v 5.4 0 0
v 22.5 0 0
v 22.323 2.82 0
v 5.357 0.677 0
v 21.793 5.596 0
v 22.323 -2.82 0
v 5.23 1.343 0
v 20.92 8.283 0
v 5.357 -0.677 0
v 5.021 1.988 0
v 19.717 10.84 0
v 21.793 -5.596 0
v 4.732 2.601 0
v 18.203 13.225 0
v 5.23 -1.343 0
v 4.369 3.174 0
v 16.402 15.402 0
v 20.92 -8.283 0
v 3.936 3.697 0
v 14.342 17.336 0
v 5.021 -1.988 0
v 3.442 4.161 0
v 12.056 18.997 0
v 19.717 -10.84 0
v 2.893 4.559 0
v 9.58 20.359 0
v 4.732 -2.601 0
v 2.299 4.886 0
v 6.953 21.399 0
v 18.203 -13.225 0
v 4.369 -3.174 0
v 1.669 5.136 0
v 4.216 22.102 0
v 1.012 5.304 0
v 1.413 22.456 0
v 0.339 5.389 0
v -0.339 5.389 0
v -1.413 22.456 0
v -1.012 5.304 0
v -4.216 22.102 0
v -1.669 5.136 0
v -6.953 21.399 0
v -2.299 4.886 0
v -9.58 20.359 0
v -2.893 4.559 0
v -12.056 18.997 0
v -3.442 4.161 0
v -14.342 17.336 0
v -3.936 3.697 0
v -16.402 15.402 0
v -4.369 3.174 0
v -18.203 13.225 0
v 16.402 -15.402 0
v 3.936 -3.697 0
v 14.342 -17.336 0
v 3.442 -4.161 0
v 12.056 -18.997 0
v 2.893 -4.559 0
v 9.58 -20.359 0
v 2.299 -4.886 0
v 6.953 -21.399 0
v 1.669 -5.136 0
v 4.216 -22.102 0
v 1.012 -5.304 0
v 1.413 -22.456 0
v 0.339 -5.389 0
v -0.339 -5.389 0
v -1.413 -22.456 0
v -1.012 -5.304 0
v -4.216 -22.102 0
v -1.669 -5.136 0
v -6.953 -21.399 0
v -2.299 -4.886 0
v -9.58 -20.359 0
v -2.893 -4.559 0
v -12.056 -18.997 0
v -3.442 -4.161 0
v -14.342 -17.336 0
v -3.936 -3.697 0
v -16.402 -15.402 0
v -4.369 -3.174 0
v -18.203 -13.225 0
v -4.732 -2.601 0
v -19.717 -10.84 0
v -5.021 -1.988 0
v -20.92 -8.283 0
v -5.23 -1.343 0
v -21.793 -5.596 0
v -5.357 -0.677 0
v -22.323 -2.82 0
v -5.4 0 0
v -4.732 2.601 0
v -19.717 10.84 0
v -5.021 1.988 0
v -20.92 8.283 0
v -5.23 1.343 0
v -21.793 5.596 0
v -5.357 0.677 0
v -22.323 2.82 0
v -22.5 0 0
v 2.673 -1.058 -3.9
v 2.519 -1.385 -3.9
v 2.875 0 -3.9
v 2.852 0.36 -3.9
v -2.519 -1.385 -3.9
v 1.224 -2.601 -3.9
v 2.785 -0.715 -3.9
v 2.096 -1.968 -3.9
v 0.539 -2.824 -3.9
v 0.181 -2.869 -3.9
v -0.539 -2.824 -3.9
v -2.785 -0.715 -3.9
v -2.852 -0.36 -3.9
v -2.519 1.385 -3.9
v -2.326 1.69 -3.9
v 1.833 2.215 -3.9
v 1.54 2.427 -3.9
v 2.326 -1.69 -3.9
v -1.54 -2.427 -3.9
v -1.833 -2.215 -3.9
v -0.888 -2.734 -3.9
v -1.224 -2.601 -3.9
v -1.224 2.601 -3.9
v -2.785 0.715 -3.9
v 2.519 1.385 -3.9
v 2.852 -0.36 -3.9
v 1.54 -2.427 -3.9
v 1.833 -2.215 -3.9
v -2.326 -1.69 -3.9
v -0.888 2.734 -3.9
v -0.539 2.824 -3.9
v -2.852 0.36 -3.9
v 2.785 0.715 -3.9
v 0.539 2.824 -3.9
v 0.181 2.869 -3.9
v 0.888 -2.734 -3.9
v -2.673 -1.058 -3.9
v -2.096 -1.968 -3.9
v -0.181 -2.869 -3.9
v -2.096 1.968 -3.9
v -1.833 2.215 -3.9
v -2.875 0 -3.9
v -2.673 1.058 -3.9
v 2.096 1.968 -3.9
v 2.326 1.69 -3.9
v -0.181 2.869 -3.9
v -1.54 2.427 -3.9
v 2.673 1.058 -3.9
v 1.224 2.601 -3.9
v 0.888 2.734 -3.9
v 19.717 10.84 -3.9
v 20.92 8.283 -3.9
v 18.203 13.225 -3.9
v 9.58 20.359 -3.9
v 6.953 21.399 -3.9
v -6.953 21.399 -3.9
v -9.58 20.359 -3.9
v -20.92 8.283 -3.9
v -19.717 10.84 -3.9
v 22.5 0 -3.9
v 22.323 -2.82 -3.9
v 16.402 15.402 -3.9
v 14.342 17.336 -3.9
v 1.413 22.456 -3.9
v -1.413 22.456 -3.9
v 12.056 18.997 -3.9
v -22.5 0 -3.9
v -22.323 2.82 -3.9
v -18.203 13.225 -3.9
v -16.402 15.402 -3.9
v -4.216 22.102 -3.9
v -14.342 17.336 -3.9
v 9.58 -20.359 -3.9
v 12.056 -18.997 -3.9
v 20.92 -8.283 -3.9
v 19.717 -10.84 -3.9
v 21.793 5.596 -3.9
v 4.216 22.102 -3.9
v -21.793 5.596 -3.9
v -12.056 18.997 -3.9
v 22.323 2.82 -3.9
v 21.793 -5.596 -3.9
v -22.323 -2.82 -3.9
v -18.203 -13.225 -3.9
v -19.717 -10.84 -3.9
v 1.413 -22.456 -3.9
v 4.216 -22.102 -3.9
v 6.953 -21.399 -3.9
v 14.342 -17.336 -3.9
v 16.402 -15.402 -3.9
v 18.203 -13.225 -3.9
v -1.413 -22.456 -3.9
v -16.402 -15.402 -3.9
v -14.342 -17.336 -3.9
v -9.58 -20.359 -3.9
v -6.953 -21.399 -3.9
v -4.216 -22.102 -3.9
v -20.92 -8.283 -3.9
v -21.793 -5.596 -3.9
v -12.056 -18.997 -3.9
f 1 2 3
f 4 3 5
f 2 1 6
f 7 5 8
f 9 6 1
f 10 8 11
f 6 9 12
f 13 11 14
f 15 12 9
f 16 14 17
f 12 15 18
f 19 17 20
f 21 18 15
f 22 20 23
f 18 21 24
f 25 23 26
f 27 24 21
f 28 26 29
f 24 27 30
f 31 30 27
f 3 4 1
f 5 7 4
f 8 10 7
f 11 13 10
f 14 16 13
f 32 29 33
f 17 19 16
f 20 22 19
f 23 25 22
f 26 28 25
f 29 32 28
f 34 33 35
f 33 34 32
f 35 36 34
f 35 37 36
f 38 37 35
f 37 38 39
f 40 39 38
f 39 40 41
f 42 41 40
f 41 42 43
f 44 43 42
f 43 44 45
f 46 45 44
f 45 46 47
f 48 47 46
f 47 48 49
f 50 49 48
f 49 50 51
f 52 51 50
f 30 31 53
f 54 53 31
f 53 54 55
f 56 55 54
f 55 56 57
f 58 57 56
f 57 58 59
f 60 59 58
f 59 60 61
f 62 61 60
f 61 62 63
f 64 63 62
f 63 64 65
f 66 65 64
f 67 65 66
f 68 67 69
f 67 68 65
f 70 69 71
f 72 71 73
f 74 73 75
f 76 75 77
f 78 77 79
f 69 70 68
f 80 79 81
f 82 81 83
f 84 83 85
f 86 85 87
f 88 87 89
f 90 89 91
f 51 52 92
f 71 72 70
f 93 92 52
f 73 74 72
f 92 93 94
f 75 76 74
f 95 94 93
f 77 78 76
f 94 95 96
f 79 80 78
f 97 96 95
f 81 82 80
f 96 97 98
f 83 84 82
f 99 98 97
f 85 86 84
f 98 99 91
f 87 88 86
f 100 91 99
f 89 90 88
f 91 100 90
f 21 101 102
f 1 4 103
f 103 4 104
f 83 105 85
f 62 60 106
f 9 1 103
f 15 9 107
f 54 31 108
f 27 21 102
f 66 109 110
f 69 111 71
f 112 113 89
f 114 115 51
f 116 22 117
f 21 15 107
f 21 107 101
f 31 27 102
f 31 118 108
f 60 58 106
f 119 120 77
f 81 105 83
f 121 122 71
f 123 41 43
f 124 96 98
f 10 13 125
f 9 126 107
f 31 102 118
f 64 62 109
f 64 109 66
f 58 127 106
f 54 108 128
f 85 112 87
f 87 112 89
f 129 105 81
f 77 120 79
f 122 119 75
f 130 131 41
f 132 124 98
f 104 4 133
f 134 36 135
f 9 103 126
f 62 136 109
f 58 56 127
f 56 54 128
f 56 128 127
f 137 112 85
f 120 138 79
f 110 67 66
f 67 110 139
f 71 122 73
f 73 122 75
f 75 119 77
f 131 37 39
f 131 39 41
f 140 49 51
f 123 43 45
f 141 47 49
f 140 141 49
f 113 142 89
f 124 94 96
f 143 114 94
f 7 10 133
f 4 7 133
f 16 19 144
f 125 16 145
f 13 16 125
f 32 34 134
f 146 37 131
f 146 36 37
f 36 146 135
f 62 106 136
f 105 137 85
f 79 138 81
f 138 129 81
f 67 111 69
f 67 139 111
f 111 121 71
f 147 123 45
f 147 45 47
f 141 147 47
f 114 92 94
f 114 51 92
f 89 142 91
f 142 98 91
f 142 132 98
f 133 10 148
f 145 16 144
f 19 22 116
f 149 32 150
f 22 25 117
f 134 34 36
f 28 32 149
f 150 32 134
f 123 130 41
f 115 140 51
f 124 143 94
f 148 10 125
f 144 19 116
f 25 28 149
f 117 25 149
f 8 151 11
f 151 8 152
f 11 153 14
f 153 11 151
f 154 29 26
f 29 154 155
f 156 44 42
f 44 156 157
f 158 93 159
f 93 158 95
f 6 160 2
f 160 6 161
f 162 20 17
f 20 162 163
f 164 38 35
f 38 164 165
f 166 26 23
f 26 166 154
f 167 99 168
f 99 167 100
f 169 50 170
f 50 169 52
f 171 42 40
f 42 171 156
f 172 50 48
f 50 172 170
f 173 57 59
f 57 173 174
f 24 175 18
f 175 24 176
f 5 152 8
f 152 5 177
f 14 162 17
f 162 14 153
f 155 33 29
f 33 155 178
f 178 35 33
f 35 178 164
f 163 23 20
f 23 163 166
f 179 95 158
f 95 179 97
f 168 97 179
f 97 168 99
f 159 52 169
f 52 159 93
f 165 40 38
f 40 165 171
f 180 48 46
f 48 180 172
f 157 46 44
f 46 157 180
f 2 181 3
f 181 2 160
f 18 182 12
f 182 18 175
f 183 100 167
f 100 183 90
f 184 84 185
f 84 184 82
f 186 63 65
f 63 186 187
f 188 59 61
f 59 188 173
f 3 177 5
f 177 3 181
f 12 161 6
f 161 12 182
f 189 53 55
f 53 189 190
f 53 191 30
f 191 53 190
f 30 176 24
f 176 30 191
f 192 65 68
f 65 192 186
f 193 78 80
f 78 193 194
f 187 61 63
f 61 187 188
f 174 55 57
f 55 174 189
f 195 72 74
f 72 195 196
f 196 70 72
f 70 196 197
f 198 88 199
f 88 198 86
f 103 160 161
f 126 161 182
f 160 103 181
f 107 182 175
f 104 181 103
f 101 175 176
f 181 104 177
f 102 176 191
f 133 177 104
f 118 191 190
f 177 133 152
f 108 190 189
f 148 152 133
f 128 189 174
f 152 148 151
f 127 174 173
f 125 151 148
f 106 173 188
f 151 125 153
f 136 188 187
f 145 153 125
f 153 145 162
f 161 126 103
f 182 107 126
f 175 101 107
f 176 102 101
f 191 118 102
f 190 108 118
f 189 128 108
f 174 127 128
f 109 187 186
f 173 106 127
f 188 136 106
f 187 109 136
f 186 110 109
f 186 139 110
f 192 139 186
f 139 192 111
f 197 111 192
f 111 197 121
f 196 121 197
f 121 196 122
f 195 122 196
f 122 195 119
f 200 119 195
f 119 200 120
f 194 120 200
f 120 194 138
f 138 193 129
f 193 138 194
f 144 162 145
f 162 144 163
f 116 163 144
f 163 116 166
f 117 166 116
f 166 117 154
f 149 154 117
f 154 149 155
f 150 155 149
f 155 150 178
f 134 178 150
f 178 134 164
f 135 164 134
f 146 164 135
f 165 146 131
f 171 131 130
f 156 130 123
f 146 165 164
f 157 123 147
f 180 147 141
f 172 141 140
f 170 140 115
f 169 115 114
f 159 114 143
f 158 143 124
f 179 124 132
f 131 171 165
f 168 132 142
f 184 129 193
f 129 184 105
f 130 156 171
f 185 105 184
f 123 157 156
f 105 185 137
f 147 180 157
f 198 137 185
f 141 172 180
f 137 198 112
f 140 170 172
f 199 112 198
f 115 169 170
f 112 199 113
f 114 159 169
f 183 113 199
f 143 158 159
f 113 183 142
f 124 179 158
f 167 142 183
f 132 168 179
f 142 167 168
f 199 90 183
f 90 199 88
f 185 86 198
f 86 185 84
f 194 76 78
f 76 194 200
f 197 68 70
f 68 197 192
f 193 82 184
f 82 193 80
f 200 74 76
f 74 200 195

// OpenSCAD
$fn = 50;


difference() {
	union() {
		translate(v = [0, 0, -3.9000000000]) {
			cylinder(h = 3.9000000000, r = 22.5000000000);
		}
		translate(v = [0, 0, -6.9000000000]) {
			cylinder(h = 6.9000000000, r = 2.8750000000);
		}
	}
	union() {
		translate(v = [0, 0, 0]) {
			rotate(a = [0, 0, 0]) {
				difference() {
					union() {
						translate(v = [0, 0, -6.9000000000]) {
							cylinder(h = 6.9000000000, r = 2.6000000000);
						}
						translate(v = [0, 0, -3.9000000000]) {
							cylinder(h = 3.9000000000, r1 = 2.8750000000, r2 = 5.4000000000);
						}
						translate(v = [0, 0, -6.9000000000]) {
							cylinder(h = 6.9000000000, r = 2.8750000000);
						}
						translate(v = [0, 0, -6.9000000000]) {
							cylinder(h = 6.9000000000, r = 2.6000000000);
						}
					}
					union();
				}
			}
		}
	}
}
